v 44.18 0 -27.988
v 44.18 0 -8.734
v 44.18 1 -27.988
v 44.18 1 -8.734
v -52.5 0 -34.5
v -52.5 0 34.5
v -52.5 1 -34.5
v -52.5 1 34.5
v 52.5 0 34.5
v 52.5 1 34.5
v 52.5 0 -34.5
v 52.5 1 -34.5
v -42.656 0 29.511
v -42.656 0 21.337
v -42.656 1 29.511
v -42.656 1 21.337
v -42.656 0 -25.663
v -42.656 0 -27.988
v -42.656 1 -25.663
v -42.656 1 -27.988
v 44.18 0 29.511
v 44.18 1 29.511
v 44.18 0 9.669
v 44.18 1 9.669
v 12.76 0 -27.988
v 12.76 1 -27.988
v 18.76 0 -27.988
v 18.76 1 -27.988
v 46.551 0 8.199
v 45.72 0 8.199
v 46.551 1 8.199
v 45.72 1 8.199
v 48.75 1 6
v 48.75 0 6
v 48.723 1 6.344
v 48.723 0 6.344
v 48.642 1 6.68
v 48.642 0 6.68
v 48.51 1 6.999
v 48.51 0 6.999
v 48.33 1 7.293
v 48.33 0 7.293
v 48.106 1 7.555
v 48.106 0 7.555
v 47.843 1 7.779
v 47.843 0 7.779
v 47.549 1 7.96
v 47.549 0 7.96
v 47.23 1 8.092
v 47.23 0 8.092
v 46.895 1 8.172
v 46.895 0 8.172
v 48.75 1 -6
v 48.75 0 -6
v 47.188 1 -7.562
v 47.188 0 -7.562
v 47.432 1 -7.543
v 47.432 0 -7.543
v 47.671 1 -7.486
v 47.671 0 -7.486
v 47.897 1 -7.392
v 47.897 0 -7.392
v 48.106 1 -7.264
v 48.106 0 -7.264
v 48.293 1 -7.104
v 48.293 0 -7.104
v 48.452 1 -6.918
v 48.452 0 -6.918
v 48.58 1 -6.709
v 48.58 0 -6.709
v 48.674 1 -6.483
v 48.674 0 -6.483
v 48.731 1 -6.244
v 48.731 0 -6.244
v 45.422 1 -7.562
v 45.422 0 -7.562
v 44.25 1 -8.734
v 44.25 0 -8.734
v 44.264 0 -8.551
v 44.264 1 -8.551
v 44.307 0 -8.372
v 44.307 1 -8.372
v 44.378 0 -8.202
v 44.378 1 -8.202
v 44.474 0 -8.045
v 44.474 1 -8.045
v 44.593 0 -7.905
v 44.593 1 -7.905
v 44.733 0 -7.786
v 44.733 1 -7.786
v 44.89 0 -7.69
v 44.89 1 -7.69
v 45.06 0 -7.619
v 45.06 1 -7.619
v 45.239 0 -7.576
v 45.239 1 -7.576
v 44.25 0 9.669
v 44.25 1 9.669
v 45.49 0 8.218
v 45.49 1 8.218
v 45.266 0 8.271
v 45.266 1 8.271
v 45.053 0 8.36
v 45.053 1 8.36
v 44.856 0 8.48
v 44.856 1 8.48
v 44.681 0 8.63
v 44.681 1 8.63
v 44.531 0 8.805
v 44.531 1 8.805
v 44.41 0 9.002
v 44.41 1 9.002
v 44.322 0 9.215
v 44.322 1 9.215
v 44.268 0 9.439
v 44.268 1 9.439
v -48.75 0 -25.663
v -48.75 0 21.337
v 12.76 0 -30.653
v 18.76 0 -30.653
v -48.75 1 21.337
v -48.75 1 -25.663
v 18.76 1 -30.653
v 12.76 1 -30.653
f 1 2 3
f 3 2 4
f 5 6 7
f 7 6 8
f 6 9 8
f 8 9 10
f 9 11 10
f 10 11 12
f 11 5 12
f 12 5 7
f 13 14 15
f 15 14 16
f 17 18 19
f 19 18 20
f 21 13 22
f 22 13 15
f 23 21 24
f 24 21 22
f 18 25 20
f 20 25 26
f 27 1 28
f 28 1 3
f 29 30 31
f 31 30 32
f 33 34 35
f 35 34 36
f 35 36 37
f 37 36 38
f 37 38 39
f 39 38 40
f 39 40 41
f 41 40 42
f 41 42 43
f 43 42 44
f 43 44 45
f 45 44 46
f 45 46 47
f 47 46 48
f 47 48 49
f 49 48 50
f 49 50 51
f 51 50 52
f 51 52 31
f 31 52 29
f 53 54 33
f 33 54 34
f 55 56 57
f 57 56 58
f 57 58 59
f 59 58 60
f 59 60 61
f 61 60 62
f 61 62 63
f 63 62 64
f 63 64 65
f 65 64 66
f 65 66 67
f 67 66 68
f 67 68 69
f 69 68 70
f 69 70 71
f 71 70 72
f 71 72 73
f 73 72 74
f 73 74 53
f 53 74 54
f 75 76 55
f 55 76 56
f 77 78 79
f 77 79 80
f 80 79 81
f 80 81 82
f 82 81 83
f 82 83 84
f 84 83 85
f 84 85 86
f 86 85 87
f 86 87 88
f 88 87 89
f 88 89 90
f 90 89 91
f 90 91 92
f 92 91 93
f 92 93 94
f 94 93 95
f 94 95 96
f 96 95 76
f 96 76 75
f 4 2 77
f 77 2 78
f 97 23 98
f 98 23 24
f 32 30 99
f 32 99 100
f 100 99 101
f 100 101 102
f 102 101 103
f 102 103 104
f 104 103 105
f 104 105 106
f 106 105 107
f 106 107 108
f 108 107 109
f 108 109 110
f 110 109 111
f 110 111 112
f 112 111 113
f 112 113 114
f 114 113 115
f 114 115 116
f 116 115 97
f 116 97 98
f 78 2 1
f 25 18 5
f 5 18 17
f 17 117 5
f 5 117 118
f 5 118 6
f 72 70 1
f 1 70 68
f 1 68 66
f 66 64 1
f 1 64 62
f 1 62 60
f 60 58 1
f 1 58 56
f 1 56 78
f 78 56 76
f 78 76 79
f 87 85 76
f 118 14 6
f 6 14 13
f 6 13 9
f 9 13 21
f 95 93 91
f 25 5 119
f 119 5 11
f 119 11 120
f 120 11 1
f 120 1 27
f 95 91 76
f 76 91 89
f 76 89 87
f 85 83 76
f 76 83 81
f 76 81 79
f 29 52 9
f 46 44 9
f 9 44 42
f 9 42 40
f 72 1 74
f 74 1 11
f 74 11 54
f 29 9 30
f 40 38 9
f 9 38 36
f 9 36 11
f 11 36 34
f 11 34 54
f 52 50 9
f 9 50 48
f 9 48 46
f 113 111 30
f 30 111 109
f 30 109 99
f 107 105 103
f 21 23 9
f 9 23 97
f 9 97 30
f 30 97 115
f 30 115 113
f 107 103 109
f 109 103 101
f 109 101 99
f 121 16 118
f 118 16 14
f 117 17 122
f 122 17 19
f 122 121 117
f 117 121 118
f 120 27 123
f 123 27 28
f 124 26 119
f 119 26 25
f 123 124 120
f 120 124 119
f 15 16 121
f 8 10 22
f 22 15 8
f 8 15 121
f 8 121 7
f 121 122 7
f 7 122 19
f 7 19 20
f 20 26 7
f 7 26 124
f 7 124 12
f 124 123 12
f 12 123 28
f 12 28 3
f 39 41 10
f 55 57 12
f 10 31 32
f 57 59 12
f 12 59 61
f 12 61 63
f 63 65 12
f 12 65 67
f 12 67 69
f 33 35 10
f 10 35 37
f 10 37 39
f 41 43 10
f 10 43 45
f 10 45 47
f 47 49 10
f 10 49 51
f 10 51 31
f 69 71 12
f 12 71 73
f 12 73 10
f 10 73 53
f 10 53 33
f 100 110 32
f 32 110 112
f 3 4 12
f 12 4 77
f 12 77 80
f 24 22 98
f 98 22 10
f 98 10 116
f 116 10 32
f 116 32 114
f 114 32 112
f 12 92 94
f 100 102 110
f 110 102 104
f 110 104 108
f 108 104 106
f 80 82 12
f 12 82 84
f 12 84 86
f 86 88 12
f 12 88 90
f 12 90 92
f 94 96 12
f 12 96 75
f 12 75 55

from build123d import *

# Parameters (mm, degrees)
SKETCH1_W           = 105
SKETCH1_H           = 69
BOSS_EXTRUDE1_DEPTH = 5
SKETCH2_W           = 86.836
SKETCH2_H           = 57.499
CUT_EXTRUDE1_DEPTH  = 81.210380614
CUT_EXTRUDE2_DEPTH  = 1
SKETCH4_W           = 5
SKETCH4_H           = 2.165
SKETCH4_H_2         = 0.335
CUT_EXTRUDE3_DEPTH  = 1
CUT_EXTRUDE4_DEPTH  = 81.210380614
SKETCH6_W           = 105
SKETCH6_H           = 69
CUT_EXTRUDE5_DEPTH  = 4


with BuildPart() as part:
    # Sketch1 → Boss-Extrude1 (new body)
    with BuildSketch(Plane(origin=(0, 0, 0), x_dir=(1, 0, 0), z_dir=(0, 1, 0))):
        Rectangle(SKETCH1_W, SKETCH1_H)
    extrude(amount=BOSS_EXTRUDE1_DEPTH)

    # Sketch2 → Cut-Extrude1 (cut, through all)
    with BuildSketch(Plane(origin=(17.072113262, 0, 5.103361153), x_dir=(-1, 0, 0), z_dir=(0, -1, 0))):
        with Locations((16.310113262, 4.341361153)):
            Rectangle(SKETCH2_W, SKETCH2_H)
    extrude(amount=-CUT_EXTRUDE1_DEPTH, mode=Mode.SUBTRACT)

    # Sketch3 → Cut-Extrude2 (cut)
    with BuildSketch(Plane(origin=(17.072113262, 0, 5.103361153), x_dir=(-1, 0, 0), z_dir=(0, -1, 0))):
        Polygon((59.822113262, 30.765861153), (54.524773562, 30.765861153), (54.524773562, -16.234138847), (59.822113262, -16.234138847), (65.822113262, -16.234138847), (65.822113262, 30.765861153), align=None)
    extrude(amount=-CUT_EXTRUDE2_DEPTH, mode=Mode.SUBTRACT)

    # Sketch4 → Cut-Extrude3 (cut)
    with BuildSketch(Plane(origin=(17.072113262, 0, 5.103361153), x_dir=(-1, 0, 0), z_dir=(0, -1, 0))):
        Polygon((-1.187888405, 35.255861153), (3.812111595, 35.255861153), (3.812111595, 33.090861153), (4.312111595, 33.090861153), (4.312111595, 35.755861153), (-1.687888405, 35.755861153), (-1.687888405, 33.090861153), (-1.187888405, 33.090861153), align=None)
        with Locations((1.312111595, 34.173361153)):
            Rectangle(SKETCH4_W, SKETCH4_H)
        Polygon((4.312111595, 33.090861153), (3.812111595, 33.090861153), (3.812111595, 32.755861153), (-1.187888405, 32.755861153), (-1.187888405, 33.090861153), (-1.687888405, 33.090861153), (-1.687888405, 32.255861153), (4.312111595, 32.255861153), align=None)
        with Locations((1.312111595, 32.923361153)):
            Rectangle(SKETCH4_W, SKETCH4_H_2)
    extrude(amount=-CUT_EXTRUDE3_DEPTH, mode=Mode.SUBTRACT)

    # Sketch5 → Cut-Extrude4 (cut, through all)
    with BuildSketch(Plane(origin=(17.072113262, 0, 5.103361153), x_dir=(-1, 0, 0), z_dir=(0, -1, 0))):
        with BuildLine():
            Line((-31.677886738, -0.896638847), (-31.677886738, 11.103361153))
            ThreePointArc((-31.677886738, 11.103361153), (-31.220399504, 12.207833039), (-30.115927617, 12.665320274))
            Line((-30.115927617, 12.665320274), (-28.350143546, 12.665320274))
            ThreePointArc((-28.350143546, 12.665320274), (-27.521232808, 13.008666344), (-27.177886738, 13.837577082))
            Line((-27.177886738, 13.837577082), (-18.865935491, 13.837577082))
            Line((-18.865935491, 13.837577082), (-18.865935491, -4.56597095))
            Line((-18.865935491, -4.56597095), (-27.177886738, -4.56597095))
            ThreePointArc((-27.177886738, -4.56597095), (-27.60841615, -3.526581006), (-28.647806094, -3.096051594))
            Line((-28.647806094, -3.096051594), (-29.478473991, -3.096051594))
            ThreePointArc((-29.478473991, -3.096051594), (-31.033693659, -2.451858515), (-31.677886738, -0.896638847))
        make_face()
    extrude(amount=-CUT_EXTRUDE4_DEPTH, mode=Mode.SUBTRACT)

    # Sketch6 → Cut-Extrude5 (cut)
    with BuildSketch(Plane(origin=(0, 5, 0), x_dir=(1, 0, 0), z_dir=(0, 1, 0))):
        Rectangle(SKETCH6_W, SKETCH6_H)
    extrude(amount=-CUT_EXTRUDE5_DEPTH, mode=Mode.SUBTRACT)


solid = part.part
